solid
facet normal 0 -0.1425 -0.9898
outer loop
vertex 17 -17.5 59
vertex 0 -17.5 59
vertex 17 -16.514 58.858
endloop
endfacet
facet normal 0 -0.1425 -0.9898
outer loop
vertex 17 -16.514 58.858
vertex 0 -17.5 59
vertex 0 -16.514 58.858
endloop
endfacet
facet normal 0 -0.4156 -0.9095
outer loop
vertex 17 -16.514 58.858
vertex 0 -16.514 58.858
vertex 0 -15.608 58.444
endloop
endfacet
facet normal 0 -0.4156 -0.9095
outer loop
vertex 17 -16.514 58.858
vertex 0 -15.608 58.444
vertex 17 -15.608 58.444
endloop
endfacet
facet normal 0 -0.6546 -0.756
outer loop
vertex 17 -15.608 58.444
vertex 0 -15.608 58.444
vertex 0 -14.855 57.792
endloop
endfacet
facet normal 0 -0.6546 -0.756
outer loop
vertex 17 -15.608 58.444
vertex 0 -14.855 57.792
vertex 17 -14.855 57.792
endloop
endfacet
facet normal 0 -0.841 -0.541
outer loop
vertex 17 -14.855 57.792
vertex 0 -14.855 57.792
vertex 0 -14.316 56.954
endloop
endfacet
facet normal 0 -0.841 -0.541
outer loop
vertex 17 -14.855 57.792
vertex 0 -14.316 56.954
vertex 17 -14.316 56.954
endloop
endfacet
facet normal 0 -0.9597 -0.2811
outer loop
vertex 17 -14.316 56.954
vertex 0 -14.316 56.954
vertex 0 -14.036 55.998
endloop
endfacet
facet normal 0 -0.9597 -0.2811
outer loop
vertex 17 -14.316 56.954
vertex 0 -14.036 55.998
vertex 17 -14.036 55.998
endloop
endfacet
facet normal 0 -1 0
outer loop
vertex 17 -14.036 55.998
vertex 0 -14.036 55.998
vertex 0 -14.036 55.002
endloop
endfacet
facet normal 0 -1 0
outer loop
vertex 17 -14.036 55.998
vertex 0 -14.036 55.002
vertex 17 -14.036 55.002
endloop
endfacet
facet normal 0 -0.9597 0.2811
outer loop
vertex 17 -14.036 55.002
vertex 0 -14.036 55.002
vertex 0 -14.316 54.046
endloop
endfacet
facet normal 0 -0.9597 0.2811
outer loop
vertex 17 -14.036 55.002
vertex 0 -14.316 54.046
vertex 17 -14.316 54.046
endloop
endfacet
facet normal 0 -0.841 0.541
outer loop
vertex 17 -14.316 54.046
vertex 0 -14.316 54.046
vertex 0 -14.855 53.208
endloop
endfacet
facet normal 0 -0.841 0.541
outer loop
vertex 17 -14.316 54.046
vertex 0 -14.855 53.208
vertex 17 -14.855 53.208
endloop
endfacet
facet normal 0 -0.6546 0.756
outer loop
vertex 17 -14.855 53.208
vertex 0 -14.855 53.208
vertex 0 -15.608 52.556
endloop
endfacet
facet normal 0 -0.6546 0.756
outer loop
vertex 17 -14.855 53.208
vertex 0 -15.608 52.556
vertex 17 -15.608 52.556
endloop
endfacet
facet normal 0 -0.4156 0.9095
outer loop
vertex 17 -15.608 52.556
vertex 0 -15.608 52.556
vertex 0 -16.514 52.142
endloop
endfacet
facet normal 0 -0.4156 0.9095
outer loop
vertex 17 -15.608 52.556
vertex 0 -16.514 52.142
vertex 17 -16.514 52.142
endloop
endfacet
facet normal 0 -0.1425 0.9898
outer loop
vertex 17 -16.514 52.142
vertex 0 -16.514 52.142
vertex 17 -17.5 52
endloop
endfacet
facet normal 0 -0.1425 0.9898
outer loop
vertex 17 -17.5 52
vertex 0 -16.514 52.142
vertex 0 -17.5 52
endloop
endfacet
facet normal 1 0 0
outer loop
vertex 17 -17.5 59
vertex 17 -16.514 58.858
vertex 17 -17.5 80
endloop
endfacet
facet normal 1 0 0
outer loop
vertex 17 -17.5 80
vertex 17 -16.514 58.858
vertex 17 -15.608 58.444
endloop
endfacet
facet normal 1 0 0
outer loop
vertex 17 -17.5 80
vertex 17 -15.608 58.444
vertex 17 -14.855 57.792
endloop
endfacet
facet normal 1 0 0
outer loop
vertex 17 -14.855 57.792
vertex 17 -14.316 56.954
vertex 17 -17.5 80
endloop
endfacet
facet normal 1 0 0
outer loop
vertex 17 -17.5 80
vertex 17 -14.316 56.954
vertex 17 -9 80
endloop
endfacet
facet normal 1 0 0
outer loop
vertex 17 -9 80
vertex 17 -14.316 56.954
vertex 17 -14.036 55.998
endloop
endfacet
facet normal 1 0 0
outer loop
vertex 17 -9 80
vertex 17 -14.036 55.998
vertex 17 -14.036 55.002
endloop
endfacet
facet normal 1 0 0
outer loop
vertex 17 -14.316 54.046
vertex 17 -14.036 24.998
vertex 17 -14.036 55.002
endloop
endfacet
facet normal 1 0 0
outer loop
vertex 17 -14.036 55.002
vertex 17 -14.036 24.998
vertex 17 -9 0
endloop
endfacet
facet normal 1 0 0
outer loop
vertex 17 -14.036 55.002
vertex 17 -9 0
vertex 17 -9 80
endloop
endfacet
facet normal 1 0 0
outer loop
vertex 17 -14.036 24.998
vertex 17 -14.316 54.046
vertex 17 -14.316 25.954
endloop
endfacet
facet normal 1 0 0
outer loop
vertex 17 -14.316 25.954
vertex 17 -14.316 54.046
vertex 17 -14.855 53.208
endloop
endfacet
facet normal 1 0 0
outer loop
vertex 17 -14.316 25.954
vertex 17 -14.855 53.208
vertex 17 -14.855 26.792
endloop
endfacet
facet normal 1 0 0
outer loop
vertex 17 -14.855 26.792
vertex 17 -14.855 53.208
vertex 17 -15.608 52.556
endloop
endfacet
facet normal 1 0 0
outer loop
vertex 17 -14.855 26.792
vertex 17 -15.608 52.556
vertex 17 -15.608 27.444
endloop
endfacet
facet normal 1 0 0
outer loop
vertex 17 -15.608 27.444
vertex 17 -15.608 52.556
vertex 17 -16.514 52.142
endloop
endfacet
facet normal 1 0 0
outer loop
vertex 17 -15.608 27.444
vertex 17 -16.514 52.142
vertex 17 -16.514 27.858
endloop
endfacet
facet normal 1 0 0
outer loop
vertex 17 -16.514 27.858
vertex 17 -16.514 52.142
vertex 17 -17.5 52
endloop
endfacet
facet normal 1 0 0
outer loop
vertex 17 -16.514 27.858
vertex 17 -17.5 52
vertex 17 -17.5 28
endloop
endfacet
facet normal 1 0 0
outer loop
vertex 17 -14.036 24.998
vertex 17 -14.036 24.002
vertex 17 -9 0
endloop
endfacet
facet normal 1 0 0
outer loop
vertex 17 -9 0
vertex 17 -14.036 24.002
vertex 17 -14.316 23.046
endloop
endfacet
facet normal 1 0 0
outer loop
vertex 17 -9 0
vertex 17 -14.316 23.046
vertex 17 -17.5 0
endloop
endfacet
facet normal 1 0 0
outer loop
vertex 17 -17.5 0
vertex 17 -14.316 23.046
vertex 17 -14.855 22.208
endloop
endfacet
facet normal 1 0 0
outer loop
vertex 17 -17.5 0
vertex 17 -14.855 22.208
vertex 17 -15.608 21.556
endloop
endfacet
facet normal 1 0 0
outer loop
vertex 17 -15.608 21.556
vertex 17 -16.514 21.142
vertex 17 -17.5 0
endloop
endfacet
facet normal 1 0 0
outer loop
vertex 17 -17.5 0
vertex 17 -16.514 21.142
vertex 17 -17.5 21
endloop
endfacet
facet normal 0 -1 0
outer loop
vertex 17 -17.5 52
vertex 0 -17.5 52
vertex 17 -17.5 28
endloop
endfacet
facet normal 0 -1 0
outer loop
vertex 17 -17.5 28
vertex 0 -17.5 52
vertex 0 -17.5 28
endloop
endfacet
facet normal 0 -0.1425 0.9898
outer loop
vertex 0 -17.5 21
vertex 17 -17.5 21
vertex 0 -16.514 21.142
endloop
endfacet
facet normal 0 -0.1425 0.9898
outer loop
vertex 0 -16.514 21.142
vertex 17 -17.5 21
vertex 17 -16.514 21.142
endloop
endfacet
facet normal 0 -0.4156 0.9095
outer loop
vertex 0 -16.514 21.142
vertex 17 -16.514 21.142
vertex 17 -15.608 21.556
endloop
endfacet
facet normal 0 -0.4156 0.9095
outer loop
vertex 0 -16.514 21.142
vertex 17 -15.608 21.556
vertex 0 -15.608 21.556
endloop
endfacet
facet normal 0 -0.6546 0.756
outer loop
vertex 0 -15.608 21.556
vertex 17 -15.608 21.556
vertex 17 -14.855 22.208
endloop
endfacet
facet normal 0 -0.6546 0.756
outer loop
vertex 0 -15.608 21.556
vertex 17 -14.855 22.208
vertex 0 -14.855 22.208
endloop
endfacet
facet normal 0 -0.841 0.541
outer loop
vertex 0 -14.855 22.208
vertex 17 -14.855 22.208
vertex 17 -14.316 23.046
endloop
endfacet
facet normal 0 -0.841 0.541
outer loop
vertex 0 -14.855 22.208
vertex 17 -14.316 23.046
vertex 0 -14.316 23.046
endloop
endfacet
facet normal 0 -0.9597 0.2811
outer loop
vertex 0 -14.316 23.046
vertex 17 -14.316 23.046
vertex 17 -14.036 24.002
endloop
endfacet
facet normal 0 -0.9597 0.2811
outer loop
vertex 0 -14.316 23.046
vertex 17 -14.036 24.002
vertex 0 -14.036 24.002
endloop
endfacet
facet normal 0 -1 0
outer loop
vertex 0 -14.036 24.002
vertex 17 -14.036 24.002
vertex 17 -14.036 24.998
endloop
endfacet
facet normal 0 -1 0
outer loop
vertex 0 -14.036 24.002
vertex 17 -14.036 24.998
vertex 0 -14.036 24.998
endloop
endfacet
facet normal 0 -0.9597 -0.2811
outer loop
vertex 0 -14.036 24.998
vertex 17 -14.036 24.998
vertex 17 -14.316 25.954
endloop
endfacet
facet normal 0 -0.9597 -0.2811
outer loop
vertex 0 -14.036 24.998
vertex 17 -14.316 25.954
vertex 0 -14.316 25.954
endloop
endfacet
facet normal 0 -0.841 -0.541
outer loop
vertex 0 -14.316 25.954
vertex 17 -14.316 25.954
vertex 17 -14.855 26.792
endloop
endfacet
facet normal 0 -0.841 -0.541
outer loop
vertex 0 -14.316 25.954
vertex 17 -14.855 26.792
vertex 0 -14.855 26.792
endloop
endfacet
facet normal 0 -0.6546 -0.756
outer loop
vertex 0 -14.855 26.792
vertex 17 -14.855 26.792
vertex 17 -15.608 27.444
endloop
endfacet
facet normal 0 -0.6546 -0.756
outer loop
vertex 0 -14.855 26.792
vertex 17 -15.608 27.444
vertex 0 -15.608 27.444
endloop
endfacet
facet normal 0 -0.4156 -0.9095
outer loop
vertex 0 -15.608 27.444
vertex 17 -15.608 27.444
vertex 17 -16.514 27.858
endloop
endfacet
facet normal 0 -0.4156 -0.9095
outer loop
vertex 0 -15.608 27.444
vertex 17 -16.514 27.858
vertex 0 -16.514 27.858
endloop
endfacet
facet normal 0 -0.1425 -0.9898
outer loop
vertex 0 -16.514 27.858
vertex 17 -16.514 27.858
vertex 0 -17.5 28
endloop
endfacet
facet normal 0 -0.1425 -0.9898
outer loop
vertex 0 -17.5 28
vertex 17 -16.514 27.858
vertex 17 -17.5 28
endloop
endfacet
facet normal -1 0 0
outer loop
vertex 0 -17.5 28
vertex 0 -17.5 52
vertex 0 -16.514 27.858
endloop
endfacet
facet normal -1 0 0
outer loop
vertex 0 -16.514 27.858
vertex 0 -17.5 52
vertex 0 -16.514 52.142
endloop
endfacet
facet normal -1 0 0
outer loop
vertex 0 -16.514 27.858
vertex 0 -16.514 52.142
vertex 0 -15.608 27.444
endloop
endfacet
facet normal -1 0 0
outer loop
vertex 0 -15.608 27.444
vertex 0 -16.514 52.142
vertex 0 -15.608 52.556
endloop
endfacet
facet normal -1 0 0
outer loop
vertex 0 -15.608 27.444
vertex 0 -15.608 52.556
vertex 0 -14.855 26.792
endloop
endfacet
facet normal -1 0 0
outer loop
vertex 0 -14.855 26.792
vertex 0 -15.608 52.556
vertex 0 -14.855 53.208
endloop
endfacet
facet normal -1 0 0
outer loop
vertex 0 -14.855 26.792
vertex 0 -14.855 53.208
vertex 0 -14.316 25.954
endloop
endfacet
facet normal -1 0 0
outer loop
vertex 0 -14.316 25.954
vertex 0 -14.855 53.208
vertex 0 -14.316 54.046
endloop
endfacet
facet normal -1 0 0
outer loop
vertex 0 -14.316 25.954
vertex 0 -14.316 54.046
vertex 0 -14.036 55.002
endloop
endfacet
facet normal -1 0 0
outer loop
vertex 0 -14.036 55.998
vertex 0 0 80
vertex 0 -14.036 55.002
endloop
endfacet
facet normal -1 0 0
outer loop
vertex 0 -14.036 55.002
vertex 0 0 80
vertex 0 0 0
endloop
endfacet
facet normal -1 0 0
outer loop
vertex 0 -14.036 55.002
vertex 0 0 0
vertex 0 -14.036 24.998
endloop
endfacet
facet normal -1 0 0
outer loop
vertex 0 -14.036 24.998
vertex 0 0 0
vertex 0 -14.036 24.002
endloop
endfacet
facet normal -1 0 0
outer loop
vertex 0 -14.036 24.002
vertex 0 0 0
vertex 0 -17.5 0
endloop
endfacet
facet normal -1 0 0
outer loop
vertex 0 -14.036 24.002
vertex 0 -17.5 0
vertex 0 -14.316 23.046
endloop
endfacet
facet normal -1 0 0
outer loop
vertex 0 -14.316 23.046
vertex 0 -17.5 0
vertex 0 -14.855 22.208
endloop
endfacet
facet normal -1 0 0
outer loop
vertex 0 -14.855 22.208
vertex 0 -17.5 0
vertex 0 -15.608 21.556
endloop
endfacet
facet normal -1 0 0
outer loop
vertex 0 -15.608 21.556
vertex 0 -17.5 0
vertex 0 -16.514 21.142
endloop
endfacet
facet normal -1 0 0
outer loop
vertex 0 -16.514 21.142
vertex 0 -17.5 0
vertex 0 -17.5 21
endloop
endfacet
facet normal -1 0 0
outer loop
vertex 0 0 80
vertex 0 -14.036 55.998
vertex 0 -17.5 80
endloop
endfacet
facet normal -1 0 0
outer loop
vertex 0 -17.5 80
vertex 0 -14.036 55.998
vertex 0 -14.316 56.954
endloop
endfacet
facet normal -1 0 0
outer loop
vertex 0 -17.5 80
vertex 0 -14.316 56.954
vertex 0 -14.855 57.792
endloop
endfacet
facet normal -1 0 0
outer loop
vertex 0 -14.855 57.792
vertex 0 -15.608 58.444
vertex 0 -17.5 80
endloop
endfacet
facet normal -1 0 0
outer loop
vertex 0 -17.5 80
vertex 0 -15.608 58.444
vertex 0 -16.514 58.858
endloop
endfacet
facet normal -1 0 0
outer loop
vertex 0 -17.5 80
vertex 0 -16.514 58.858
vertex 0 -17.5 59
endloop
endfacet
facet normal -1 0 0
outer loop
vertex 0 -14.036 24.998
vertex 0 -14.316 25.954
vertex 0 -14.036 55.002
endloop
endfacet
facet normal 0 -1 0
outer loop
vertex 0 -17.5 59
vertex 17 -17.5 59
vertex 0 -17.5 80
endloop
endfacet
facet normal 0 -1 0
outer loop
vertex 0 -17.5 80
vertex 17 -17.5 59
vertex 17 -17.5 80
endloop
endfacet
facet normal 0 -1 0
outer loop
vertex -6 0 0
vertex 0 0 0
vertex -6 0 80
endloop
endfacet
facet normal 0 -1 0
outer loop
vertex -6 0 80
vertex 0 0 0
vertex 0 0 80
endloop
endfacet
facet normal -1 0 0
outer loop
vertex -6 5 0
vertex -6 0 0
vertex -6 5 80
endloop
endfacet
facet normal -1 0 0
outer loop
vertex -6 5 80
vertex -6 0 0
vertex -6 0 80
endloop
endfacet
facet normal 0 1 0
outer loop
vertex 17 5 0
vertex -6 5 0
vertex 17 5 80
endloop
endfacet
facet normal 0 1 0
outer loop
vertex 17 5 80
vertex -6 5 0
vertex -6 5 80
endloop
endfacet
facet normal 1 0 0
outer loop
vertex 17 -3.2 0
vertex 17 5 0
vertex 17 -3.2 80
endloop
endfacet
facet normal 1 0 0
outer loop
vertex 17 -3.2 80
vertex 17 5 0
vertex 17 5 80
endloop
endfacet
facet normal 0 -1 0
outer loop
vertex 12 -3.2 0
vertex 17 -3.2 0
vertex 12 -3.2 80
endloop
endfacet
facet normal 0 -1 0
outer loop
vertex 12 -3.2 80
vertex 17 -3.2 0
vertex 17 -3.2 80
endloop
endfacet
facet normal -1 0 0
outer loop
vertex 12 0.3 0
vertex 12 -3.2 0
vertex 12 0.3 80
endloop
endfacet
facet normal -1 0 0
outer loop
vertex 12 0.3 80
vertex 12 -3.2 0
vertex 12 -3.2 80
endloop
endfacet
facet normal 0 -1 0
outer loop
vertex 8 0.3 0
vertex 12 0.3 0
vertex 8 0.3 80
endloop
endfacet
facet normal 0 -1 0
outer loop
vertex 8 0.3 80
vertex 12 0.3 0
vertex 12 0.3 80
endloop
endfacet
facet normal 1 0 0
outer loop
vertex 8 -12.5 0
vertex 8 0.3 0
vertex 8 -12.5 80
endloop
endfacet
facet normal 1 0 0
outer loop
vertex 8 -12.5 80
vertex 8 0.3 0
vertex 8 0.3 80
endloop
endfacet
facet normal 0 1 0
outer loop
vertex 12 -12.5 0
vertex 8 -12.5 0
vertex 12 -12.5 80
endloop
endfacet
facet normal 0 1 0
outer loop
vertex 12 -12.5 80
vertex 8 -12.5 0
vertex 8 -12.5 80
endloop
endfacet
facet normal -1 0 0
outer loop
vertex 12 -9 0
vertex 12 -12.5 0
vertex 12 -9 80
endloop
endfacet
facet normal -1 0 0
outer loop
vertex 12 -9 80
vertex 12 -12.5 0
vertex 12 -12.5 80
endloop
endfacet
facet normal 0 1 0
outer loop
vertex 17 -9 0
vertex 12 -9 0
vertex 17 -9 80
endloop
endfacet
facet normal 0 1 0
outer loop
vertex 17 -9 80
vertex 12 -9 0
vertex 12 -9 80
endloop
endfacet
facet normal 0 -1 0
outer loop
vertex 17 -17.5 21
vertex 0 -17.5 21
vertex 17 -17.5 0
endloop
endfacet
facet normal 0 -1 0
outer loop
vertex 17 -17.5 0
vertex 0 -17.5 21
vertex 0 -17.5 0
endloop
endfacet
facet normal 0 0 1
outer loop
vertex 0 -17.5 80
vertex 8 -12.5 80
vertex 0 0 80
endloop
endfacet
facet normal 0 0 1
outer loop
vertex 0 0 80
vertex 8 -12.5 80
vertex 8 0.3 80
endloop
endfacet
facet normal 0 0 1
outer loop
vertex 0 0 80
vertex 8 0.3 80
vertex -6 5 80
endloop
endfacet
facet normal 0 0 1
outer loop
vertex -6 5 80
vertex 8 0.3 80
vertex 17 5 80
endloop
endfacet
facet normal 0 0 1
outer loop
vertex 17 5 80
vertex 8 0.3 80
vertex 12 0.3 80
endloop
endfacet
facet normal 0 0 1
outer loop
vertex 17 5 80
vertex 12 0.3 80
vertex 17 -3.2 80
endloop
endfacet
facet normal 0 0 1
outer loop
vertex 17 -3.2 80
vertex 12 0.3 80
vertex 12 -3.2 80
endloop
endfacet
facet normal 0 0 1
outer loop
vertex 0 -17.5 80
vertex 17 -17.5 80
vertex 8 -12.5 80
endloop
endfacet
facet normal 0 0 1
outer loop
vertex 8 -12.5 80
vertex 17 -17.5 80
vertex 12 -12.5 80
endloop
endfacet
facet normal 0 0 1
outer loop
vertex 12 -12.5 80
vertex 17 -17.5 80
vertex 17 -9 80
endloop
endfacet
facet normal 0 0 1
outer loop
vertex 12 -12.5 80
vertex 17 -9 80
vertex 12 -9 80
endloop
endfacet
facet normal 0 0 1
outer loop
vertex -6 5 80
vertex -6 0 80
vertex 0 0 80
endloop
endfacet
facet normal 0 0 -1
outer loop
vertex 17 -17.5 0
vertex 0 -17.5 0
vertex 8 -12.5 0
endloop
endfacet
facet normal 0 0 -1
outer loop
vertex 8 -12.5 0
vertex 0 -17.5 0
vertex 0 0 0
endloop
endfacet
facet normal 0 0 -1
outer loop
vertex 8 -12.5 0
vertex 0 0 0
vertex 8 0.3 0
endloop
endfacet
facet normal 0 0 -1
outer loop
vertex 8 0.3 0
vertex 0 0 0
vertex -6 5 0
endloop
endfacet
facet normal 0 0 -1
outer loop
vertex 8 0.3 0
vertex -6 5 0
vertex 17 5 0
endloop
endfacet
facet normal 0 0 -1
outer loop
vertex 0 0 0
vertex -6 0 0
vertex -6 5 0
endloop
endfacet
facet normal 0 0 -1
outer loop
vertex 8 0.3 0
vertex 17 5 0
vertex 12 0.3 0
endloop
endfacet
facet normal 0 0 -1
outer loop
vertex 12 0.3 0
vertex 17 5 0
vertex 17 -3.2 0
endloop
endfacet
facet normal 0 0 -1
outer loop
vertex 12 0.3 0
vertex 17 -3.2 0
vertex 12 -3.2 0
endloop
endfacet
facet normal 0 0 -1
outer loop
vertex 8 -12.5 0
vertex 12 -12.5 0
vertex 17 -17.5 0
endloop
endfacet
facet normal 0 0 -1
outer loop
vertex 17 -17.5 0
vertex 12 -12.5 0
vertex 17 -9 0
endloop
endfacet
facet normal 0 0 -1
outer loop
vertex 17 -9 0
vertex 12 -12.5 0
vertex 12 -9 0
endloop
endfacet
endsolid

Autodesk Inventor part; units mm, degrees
ref_plane "YZ Plane" through (0, 0, 0) normal (1, 0, 0) x (0, 1, 0)
ref_plane "XZ Plane" through (0, 0, 0) normal (0, 1, 0) x (-1, 0, 0)
sketch "Sketch1" plane through (0, 0, 0) normal (0, 0, 1) x (1, 0, 0)
  line L0 (17, 5) -> (17, -3.2)
  line L1 (17, -3.2) -> (12, -3.2)
  line L2 (12, -12.5) -> (12, -9)
  line L3 (12, -9) -> (17, -9)
  line L4 (17, -9) -> (17, -17.5)
  line L5 (17, -17.5) -> (0, -17.5)
  line L6 (0, -17.5) -> (0, 0)
  line L7 (17, 5) -> (-6, 5)
  line L8 (-6, 5) -> (-6, 0)
  line L9 (-6, 0) -> (0, 0)
  line L10 (12, -3.2) -> (12, 0.3)
  line L11 (12, -12.5) -> (8, -12.5)
  line L12 (8, -12.5) -> (8, 0.3)
  line L13 (8, 0.3) -> (12, 0.3)
  dimension "d0" = 6
  dimension "d1" = 5
  dimension "d4" = 4
  dimension "d8" = 5
  dimension "d10" = 5.8
  dimension "d12" = 3.5
  dimension "d13" = 3.5
  dimension "d17" = 0.3
  dimension "d18" = 17
  dimension "d19" = 8
  dimension "d20" = 0
extrude "Extrusion1" add sketch "Sketch1" along normal blind 80
sketch "Sketch2" plane through (17, -17.5, 0) normal (1, 0, 0) x (0, 0, -1)
  line L0 (0, 0) -> (-80, 0) projected
  circle A0 centre (-24.5, 0) radius 3.5
  line L1 (0, 0) -> (0, 8.5) projected
  line L2 (0, 8.5) -> (-80, 8.5) projected
  line L3 (-80, 0) -> (-80, 8.5) projected
  line L4 (0, 0) -> (-80, 0) projected
  point P0 (0, 17.5)
  dimension "d22" = 7
  dimension "d24" = 24.5
extrude "Extrusion2" cut sketch "Sketch2" against normal blind 20 contours A0 L0 | L0 A0
ref_plane "Work Plane1" through (0, 0, 40) normal (0, 0, 1) x (1, 0, 0)
mirror "Mirror1" about plane through (0, 0, 40) normal (0, 0, 1) of "Extrusion2"
equation "\"d13\" = d12"
equation "\"d22\" = d21"
equation "\"d21\" = 7"
properties part number "Riel acople de motor"
